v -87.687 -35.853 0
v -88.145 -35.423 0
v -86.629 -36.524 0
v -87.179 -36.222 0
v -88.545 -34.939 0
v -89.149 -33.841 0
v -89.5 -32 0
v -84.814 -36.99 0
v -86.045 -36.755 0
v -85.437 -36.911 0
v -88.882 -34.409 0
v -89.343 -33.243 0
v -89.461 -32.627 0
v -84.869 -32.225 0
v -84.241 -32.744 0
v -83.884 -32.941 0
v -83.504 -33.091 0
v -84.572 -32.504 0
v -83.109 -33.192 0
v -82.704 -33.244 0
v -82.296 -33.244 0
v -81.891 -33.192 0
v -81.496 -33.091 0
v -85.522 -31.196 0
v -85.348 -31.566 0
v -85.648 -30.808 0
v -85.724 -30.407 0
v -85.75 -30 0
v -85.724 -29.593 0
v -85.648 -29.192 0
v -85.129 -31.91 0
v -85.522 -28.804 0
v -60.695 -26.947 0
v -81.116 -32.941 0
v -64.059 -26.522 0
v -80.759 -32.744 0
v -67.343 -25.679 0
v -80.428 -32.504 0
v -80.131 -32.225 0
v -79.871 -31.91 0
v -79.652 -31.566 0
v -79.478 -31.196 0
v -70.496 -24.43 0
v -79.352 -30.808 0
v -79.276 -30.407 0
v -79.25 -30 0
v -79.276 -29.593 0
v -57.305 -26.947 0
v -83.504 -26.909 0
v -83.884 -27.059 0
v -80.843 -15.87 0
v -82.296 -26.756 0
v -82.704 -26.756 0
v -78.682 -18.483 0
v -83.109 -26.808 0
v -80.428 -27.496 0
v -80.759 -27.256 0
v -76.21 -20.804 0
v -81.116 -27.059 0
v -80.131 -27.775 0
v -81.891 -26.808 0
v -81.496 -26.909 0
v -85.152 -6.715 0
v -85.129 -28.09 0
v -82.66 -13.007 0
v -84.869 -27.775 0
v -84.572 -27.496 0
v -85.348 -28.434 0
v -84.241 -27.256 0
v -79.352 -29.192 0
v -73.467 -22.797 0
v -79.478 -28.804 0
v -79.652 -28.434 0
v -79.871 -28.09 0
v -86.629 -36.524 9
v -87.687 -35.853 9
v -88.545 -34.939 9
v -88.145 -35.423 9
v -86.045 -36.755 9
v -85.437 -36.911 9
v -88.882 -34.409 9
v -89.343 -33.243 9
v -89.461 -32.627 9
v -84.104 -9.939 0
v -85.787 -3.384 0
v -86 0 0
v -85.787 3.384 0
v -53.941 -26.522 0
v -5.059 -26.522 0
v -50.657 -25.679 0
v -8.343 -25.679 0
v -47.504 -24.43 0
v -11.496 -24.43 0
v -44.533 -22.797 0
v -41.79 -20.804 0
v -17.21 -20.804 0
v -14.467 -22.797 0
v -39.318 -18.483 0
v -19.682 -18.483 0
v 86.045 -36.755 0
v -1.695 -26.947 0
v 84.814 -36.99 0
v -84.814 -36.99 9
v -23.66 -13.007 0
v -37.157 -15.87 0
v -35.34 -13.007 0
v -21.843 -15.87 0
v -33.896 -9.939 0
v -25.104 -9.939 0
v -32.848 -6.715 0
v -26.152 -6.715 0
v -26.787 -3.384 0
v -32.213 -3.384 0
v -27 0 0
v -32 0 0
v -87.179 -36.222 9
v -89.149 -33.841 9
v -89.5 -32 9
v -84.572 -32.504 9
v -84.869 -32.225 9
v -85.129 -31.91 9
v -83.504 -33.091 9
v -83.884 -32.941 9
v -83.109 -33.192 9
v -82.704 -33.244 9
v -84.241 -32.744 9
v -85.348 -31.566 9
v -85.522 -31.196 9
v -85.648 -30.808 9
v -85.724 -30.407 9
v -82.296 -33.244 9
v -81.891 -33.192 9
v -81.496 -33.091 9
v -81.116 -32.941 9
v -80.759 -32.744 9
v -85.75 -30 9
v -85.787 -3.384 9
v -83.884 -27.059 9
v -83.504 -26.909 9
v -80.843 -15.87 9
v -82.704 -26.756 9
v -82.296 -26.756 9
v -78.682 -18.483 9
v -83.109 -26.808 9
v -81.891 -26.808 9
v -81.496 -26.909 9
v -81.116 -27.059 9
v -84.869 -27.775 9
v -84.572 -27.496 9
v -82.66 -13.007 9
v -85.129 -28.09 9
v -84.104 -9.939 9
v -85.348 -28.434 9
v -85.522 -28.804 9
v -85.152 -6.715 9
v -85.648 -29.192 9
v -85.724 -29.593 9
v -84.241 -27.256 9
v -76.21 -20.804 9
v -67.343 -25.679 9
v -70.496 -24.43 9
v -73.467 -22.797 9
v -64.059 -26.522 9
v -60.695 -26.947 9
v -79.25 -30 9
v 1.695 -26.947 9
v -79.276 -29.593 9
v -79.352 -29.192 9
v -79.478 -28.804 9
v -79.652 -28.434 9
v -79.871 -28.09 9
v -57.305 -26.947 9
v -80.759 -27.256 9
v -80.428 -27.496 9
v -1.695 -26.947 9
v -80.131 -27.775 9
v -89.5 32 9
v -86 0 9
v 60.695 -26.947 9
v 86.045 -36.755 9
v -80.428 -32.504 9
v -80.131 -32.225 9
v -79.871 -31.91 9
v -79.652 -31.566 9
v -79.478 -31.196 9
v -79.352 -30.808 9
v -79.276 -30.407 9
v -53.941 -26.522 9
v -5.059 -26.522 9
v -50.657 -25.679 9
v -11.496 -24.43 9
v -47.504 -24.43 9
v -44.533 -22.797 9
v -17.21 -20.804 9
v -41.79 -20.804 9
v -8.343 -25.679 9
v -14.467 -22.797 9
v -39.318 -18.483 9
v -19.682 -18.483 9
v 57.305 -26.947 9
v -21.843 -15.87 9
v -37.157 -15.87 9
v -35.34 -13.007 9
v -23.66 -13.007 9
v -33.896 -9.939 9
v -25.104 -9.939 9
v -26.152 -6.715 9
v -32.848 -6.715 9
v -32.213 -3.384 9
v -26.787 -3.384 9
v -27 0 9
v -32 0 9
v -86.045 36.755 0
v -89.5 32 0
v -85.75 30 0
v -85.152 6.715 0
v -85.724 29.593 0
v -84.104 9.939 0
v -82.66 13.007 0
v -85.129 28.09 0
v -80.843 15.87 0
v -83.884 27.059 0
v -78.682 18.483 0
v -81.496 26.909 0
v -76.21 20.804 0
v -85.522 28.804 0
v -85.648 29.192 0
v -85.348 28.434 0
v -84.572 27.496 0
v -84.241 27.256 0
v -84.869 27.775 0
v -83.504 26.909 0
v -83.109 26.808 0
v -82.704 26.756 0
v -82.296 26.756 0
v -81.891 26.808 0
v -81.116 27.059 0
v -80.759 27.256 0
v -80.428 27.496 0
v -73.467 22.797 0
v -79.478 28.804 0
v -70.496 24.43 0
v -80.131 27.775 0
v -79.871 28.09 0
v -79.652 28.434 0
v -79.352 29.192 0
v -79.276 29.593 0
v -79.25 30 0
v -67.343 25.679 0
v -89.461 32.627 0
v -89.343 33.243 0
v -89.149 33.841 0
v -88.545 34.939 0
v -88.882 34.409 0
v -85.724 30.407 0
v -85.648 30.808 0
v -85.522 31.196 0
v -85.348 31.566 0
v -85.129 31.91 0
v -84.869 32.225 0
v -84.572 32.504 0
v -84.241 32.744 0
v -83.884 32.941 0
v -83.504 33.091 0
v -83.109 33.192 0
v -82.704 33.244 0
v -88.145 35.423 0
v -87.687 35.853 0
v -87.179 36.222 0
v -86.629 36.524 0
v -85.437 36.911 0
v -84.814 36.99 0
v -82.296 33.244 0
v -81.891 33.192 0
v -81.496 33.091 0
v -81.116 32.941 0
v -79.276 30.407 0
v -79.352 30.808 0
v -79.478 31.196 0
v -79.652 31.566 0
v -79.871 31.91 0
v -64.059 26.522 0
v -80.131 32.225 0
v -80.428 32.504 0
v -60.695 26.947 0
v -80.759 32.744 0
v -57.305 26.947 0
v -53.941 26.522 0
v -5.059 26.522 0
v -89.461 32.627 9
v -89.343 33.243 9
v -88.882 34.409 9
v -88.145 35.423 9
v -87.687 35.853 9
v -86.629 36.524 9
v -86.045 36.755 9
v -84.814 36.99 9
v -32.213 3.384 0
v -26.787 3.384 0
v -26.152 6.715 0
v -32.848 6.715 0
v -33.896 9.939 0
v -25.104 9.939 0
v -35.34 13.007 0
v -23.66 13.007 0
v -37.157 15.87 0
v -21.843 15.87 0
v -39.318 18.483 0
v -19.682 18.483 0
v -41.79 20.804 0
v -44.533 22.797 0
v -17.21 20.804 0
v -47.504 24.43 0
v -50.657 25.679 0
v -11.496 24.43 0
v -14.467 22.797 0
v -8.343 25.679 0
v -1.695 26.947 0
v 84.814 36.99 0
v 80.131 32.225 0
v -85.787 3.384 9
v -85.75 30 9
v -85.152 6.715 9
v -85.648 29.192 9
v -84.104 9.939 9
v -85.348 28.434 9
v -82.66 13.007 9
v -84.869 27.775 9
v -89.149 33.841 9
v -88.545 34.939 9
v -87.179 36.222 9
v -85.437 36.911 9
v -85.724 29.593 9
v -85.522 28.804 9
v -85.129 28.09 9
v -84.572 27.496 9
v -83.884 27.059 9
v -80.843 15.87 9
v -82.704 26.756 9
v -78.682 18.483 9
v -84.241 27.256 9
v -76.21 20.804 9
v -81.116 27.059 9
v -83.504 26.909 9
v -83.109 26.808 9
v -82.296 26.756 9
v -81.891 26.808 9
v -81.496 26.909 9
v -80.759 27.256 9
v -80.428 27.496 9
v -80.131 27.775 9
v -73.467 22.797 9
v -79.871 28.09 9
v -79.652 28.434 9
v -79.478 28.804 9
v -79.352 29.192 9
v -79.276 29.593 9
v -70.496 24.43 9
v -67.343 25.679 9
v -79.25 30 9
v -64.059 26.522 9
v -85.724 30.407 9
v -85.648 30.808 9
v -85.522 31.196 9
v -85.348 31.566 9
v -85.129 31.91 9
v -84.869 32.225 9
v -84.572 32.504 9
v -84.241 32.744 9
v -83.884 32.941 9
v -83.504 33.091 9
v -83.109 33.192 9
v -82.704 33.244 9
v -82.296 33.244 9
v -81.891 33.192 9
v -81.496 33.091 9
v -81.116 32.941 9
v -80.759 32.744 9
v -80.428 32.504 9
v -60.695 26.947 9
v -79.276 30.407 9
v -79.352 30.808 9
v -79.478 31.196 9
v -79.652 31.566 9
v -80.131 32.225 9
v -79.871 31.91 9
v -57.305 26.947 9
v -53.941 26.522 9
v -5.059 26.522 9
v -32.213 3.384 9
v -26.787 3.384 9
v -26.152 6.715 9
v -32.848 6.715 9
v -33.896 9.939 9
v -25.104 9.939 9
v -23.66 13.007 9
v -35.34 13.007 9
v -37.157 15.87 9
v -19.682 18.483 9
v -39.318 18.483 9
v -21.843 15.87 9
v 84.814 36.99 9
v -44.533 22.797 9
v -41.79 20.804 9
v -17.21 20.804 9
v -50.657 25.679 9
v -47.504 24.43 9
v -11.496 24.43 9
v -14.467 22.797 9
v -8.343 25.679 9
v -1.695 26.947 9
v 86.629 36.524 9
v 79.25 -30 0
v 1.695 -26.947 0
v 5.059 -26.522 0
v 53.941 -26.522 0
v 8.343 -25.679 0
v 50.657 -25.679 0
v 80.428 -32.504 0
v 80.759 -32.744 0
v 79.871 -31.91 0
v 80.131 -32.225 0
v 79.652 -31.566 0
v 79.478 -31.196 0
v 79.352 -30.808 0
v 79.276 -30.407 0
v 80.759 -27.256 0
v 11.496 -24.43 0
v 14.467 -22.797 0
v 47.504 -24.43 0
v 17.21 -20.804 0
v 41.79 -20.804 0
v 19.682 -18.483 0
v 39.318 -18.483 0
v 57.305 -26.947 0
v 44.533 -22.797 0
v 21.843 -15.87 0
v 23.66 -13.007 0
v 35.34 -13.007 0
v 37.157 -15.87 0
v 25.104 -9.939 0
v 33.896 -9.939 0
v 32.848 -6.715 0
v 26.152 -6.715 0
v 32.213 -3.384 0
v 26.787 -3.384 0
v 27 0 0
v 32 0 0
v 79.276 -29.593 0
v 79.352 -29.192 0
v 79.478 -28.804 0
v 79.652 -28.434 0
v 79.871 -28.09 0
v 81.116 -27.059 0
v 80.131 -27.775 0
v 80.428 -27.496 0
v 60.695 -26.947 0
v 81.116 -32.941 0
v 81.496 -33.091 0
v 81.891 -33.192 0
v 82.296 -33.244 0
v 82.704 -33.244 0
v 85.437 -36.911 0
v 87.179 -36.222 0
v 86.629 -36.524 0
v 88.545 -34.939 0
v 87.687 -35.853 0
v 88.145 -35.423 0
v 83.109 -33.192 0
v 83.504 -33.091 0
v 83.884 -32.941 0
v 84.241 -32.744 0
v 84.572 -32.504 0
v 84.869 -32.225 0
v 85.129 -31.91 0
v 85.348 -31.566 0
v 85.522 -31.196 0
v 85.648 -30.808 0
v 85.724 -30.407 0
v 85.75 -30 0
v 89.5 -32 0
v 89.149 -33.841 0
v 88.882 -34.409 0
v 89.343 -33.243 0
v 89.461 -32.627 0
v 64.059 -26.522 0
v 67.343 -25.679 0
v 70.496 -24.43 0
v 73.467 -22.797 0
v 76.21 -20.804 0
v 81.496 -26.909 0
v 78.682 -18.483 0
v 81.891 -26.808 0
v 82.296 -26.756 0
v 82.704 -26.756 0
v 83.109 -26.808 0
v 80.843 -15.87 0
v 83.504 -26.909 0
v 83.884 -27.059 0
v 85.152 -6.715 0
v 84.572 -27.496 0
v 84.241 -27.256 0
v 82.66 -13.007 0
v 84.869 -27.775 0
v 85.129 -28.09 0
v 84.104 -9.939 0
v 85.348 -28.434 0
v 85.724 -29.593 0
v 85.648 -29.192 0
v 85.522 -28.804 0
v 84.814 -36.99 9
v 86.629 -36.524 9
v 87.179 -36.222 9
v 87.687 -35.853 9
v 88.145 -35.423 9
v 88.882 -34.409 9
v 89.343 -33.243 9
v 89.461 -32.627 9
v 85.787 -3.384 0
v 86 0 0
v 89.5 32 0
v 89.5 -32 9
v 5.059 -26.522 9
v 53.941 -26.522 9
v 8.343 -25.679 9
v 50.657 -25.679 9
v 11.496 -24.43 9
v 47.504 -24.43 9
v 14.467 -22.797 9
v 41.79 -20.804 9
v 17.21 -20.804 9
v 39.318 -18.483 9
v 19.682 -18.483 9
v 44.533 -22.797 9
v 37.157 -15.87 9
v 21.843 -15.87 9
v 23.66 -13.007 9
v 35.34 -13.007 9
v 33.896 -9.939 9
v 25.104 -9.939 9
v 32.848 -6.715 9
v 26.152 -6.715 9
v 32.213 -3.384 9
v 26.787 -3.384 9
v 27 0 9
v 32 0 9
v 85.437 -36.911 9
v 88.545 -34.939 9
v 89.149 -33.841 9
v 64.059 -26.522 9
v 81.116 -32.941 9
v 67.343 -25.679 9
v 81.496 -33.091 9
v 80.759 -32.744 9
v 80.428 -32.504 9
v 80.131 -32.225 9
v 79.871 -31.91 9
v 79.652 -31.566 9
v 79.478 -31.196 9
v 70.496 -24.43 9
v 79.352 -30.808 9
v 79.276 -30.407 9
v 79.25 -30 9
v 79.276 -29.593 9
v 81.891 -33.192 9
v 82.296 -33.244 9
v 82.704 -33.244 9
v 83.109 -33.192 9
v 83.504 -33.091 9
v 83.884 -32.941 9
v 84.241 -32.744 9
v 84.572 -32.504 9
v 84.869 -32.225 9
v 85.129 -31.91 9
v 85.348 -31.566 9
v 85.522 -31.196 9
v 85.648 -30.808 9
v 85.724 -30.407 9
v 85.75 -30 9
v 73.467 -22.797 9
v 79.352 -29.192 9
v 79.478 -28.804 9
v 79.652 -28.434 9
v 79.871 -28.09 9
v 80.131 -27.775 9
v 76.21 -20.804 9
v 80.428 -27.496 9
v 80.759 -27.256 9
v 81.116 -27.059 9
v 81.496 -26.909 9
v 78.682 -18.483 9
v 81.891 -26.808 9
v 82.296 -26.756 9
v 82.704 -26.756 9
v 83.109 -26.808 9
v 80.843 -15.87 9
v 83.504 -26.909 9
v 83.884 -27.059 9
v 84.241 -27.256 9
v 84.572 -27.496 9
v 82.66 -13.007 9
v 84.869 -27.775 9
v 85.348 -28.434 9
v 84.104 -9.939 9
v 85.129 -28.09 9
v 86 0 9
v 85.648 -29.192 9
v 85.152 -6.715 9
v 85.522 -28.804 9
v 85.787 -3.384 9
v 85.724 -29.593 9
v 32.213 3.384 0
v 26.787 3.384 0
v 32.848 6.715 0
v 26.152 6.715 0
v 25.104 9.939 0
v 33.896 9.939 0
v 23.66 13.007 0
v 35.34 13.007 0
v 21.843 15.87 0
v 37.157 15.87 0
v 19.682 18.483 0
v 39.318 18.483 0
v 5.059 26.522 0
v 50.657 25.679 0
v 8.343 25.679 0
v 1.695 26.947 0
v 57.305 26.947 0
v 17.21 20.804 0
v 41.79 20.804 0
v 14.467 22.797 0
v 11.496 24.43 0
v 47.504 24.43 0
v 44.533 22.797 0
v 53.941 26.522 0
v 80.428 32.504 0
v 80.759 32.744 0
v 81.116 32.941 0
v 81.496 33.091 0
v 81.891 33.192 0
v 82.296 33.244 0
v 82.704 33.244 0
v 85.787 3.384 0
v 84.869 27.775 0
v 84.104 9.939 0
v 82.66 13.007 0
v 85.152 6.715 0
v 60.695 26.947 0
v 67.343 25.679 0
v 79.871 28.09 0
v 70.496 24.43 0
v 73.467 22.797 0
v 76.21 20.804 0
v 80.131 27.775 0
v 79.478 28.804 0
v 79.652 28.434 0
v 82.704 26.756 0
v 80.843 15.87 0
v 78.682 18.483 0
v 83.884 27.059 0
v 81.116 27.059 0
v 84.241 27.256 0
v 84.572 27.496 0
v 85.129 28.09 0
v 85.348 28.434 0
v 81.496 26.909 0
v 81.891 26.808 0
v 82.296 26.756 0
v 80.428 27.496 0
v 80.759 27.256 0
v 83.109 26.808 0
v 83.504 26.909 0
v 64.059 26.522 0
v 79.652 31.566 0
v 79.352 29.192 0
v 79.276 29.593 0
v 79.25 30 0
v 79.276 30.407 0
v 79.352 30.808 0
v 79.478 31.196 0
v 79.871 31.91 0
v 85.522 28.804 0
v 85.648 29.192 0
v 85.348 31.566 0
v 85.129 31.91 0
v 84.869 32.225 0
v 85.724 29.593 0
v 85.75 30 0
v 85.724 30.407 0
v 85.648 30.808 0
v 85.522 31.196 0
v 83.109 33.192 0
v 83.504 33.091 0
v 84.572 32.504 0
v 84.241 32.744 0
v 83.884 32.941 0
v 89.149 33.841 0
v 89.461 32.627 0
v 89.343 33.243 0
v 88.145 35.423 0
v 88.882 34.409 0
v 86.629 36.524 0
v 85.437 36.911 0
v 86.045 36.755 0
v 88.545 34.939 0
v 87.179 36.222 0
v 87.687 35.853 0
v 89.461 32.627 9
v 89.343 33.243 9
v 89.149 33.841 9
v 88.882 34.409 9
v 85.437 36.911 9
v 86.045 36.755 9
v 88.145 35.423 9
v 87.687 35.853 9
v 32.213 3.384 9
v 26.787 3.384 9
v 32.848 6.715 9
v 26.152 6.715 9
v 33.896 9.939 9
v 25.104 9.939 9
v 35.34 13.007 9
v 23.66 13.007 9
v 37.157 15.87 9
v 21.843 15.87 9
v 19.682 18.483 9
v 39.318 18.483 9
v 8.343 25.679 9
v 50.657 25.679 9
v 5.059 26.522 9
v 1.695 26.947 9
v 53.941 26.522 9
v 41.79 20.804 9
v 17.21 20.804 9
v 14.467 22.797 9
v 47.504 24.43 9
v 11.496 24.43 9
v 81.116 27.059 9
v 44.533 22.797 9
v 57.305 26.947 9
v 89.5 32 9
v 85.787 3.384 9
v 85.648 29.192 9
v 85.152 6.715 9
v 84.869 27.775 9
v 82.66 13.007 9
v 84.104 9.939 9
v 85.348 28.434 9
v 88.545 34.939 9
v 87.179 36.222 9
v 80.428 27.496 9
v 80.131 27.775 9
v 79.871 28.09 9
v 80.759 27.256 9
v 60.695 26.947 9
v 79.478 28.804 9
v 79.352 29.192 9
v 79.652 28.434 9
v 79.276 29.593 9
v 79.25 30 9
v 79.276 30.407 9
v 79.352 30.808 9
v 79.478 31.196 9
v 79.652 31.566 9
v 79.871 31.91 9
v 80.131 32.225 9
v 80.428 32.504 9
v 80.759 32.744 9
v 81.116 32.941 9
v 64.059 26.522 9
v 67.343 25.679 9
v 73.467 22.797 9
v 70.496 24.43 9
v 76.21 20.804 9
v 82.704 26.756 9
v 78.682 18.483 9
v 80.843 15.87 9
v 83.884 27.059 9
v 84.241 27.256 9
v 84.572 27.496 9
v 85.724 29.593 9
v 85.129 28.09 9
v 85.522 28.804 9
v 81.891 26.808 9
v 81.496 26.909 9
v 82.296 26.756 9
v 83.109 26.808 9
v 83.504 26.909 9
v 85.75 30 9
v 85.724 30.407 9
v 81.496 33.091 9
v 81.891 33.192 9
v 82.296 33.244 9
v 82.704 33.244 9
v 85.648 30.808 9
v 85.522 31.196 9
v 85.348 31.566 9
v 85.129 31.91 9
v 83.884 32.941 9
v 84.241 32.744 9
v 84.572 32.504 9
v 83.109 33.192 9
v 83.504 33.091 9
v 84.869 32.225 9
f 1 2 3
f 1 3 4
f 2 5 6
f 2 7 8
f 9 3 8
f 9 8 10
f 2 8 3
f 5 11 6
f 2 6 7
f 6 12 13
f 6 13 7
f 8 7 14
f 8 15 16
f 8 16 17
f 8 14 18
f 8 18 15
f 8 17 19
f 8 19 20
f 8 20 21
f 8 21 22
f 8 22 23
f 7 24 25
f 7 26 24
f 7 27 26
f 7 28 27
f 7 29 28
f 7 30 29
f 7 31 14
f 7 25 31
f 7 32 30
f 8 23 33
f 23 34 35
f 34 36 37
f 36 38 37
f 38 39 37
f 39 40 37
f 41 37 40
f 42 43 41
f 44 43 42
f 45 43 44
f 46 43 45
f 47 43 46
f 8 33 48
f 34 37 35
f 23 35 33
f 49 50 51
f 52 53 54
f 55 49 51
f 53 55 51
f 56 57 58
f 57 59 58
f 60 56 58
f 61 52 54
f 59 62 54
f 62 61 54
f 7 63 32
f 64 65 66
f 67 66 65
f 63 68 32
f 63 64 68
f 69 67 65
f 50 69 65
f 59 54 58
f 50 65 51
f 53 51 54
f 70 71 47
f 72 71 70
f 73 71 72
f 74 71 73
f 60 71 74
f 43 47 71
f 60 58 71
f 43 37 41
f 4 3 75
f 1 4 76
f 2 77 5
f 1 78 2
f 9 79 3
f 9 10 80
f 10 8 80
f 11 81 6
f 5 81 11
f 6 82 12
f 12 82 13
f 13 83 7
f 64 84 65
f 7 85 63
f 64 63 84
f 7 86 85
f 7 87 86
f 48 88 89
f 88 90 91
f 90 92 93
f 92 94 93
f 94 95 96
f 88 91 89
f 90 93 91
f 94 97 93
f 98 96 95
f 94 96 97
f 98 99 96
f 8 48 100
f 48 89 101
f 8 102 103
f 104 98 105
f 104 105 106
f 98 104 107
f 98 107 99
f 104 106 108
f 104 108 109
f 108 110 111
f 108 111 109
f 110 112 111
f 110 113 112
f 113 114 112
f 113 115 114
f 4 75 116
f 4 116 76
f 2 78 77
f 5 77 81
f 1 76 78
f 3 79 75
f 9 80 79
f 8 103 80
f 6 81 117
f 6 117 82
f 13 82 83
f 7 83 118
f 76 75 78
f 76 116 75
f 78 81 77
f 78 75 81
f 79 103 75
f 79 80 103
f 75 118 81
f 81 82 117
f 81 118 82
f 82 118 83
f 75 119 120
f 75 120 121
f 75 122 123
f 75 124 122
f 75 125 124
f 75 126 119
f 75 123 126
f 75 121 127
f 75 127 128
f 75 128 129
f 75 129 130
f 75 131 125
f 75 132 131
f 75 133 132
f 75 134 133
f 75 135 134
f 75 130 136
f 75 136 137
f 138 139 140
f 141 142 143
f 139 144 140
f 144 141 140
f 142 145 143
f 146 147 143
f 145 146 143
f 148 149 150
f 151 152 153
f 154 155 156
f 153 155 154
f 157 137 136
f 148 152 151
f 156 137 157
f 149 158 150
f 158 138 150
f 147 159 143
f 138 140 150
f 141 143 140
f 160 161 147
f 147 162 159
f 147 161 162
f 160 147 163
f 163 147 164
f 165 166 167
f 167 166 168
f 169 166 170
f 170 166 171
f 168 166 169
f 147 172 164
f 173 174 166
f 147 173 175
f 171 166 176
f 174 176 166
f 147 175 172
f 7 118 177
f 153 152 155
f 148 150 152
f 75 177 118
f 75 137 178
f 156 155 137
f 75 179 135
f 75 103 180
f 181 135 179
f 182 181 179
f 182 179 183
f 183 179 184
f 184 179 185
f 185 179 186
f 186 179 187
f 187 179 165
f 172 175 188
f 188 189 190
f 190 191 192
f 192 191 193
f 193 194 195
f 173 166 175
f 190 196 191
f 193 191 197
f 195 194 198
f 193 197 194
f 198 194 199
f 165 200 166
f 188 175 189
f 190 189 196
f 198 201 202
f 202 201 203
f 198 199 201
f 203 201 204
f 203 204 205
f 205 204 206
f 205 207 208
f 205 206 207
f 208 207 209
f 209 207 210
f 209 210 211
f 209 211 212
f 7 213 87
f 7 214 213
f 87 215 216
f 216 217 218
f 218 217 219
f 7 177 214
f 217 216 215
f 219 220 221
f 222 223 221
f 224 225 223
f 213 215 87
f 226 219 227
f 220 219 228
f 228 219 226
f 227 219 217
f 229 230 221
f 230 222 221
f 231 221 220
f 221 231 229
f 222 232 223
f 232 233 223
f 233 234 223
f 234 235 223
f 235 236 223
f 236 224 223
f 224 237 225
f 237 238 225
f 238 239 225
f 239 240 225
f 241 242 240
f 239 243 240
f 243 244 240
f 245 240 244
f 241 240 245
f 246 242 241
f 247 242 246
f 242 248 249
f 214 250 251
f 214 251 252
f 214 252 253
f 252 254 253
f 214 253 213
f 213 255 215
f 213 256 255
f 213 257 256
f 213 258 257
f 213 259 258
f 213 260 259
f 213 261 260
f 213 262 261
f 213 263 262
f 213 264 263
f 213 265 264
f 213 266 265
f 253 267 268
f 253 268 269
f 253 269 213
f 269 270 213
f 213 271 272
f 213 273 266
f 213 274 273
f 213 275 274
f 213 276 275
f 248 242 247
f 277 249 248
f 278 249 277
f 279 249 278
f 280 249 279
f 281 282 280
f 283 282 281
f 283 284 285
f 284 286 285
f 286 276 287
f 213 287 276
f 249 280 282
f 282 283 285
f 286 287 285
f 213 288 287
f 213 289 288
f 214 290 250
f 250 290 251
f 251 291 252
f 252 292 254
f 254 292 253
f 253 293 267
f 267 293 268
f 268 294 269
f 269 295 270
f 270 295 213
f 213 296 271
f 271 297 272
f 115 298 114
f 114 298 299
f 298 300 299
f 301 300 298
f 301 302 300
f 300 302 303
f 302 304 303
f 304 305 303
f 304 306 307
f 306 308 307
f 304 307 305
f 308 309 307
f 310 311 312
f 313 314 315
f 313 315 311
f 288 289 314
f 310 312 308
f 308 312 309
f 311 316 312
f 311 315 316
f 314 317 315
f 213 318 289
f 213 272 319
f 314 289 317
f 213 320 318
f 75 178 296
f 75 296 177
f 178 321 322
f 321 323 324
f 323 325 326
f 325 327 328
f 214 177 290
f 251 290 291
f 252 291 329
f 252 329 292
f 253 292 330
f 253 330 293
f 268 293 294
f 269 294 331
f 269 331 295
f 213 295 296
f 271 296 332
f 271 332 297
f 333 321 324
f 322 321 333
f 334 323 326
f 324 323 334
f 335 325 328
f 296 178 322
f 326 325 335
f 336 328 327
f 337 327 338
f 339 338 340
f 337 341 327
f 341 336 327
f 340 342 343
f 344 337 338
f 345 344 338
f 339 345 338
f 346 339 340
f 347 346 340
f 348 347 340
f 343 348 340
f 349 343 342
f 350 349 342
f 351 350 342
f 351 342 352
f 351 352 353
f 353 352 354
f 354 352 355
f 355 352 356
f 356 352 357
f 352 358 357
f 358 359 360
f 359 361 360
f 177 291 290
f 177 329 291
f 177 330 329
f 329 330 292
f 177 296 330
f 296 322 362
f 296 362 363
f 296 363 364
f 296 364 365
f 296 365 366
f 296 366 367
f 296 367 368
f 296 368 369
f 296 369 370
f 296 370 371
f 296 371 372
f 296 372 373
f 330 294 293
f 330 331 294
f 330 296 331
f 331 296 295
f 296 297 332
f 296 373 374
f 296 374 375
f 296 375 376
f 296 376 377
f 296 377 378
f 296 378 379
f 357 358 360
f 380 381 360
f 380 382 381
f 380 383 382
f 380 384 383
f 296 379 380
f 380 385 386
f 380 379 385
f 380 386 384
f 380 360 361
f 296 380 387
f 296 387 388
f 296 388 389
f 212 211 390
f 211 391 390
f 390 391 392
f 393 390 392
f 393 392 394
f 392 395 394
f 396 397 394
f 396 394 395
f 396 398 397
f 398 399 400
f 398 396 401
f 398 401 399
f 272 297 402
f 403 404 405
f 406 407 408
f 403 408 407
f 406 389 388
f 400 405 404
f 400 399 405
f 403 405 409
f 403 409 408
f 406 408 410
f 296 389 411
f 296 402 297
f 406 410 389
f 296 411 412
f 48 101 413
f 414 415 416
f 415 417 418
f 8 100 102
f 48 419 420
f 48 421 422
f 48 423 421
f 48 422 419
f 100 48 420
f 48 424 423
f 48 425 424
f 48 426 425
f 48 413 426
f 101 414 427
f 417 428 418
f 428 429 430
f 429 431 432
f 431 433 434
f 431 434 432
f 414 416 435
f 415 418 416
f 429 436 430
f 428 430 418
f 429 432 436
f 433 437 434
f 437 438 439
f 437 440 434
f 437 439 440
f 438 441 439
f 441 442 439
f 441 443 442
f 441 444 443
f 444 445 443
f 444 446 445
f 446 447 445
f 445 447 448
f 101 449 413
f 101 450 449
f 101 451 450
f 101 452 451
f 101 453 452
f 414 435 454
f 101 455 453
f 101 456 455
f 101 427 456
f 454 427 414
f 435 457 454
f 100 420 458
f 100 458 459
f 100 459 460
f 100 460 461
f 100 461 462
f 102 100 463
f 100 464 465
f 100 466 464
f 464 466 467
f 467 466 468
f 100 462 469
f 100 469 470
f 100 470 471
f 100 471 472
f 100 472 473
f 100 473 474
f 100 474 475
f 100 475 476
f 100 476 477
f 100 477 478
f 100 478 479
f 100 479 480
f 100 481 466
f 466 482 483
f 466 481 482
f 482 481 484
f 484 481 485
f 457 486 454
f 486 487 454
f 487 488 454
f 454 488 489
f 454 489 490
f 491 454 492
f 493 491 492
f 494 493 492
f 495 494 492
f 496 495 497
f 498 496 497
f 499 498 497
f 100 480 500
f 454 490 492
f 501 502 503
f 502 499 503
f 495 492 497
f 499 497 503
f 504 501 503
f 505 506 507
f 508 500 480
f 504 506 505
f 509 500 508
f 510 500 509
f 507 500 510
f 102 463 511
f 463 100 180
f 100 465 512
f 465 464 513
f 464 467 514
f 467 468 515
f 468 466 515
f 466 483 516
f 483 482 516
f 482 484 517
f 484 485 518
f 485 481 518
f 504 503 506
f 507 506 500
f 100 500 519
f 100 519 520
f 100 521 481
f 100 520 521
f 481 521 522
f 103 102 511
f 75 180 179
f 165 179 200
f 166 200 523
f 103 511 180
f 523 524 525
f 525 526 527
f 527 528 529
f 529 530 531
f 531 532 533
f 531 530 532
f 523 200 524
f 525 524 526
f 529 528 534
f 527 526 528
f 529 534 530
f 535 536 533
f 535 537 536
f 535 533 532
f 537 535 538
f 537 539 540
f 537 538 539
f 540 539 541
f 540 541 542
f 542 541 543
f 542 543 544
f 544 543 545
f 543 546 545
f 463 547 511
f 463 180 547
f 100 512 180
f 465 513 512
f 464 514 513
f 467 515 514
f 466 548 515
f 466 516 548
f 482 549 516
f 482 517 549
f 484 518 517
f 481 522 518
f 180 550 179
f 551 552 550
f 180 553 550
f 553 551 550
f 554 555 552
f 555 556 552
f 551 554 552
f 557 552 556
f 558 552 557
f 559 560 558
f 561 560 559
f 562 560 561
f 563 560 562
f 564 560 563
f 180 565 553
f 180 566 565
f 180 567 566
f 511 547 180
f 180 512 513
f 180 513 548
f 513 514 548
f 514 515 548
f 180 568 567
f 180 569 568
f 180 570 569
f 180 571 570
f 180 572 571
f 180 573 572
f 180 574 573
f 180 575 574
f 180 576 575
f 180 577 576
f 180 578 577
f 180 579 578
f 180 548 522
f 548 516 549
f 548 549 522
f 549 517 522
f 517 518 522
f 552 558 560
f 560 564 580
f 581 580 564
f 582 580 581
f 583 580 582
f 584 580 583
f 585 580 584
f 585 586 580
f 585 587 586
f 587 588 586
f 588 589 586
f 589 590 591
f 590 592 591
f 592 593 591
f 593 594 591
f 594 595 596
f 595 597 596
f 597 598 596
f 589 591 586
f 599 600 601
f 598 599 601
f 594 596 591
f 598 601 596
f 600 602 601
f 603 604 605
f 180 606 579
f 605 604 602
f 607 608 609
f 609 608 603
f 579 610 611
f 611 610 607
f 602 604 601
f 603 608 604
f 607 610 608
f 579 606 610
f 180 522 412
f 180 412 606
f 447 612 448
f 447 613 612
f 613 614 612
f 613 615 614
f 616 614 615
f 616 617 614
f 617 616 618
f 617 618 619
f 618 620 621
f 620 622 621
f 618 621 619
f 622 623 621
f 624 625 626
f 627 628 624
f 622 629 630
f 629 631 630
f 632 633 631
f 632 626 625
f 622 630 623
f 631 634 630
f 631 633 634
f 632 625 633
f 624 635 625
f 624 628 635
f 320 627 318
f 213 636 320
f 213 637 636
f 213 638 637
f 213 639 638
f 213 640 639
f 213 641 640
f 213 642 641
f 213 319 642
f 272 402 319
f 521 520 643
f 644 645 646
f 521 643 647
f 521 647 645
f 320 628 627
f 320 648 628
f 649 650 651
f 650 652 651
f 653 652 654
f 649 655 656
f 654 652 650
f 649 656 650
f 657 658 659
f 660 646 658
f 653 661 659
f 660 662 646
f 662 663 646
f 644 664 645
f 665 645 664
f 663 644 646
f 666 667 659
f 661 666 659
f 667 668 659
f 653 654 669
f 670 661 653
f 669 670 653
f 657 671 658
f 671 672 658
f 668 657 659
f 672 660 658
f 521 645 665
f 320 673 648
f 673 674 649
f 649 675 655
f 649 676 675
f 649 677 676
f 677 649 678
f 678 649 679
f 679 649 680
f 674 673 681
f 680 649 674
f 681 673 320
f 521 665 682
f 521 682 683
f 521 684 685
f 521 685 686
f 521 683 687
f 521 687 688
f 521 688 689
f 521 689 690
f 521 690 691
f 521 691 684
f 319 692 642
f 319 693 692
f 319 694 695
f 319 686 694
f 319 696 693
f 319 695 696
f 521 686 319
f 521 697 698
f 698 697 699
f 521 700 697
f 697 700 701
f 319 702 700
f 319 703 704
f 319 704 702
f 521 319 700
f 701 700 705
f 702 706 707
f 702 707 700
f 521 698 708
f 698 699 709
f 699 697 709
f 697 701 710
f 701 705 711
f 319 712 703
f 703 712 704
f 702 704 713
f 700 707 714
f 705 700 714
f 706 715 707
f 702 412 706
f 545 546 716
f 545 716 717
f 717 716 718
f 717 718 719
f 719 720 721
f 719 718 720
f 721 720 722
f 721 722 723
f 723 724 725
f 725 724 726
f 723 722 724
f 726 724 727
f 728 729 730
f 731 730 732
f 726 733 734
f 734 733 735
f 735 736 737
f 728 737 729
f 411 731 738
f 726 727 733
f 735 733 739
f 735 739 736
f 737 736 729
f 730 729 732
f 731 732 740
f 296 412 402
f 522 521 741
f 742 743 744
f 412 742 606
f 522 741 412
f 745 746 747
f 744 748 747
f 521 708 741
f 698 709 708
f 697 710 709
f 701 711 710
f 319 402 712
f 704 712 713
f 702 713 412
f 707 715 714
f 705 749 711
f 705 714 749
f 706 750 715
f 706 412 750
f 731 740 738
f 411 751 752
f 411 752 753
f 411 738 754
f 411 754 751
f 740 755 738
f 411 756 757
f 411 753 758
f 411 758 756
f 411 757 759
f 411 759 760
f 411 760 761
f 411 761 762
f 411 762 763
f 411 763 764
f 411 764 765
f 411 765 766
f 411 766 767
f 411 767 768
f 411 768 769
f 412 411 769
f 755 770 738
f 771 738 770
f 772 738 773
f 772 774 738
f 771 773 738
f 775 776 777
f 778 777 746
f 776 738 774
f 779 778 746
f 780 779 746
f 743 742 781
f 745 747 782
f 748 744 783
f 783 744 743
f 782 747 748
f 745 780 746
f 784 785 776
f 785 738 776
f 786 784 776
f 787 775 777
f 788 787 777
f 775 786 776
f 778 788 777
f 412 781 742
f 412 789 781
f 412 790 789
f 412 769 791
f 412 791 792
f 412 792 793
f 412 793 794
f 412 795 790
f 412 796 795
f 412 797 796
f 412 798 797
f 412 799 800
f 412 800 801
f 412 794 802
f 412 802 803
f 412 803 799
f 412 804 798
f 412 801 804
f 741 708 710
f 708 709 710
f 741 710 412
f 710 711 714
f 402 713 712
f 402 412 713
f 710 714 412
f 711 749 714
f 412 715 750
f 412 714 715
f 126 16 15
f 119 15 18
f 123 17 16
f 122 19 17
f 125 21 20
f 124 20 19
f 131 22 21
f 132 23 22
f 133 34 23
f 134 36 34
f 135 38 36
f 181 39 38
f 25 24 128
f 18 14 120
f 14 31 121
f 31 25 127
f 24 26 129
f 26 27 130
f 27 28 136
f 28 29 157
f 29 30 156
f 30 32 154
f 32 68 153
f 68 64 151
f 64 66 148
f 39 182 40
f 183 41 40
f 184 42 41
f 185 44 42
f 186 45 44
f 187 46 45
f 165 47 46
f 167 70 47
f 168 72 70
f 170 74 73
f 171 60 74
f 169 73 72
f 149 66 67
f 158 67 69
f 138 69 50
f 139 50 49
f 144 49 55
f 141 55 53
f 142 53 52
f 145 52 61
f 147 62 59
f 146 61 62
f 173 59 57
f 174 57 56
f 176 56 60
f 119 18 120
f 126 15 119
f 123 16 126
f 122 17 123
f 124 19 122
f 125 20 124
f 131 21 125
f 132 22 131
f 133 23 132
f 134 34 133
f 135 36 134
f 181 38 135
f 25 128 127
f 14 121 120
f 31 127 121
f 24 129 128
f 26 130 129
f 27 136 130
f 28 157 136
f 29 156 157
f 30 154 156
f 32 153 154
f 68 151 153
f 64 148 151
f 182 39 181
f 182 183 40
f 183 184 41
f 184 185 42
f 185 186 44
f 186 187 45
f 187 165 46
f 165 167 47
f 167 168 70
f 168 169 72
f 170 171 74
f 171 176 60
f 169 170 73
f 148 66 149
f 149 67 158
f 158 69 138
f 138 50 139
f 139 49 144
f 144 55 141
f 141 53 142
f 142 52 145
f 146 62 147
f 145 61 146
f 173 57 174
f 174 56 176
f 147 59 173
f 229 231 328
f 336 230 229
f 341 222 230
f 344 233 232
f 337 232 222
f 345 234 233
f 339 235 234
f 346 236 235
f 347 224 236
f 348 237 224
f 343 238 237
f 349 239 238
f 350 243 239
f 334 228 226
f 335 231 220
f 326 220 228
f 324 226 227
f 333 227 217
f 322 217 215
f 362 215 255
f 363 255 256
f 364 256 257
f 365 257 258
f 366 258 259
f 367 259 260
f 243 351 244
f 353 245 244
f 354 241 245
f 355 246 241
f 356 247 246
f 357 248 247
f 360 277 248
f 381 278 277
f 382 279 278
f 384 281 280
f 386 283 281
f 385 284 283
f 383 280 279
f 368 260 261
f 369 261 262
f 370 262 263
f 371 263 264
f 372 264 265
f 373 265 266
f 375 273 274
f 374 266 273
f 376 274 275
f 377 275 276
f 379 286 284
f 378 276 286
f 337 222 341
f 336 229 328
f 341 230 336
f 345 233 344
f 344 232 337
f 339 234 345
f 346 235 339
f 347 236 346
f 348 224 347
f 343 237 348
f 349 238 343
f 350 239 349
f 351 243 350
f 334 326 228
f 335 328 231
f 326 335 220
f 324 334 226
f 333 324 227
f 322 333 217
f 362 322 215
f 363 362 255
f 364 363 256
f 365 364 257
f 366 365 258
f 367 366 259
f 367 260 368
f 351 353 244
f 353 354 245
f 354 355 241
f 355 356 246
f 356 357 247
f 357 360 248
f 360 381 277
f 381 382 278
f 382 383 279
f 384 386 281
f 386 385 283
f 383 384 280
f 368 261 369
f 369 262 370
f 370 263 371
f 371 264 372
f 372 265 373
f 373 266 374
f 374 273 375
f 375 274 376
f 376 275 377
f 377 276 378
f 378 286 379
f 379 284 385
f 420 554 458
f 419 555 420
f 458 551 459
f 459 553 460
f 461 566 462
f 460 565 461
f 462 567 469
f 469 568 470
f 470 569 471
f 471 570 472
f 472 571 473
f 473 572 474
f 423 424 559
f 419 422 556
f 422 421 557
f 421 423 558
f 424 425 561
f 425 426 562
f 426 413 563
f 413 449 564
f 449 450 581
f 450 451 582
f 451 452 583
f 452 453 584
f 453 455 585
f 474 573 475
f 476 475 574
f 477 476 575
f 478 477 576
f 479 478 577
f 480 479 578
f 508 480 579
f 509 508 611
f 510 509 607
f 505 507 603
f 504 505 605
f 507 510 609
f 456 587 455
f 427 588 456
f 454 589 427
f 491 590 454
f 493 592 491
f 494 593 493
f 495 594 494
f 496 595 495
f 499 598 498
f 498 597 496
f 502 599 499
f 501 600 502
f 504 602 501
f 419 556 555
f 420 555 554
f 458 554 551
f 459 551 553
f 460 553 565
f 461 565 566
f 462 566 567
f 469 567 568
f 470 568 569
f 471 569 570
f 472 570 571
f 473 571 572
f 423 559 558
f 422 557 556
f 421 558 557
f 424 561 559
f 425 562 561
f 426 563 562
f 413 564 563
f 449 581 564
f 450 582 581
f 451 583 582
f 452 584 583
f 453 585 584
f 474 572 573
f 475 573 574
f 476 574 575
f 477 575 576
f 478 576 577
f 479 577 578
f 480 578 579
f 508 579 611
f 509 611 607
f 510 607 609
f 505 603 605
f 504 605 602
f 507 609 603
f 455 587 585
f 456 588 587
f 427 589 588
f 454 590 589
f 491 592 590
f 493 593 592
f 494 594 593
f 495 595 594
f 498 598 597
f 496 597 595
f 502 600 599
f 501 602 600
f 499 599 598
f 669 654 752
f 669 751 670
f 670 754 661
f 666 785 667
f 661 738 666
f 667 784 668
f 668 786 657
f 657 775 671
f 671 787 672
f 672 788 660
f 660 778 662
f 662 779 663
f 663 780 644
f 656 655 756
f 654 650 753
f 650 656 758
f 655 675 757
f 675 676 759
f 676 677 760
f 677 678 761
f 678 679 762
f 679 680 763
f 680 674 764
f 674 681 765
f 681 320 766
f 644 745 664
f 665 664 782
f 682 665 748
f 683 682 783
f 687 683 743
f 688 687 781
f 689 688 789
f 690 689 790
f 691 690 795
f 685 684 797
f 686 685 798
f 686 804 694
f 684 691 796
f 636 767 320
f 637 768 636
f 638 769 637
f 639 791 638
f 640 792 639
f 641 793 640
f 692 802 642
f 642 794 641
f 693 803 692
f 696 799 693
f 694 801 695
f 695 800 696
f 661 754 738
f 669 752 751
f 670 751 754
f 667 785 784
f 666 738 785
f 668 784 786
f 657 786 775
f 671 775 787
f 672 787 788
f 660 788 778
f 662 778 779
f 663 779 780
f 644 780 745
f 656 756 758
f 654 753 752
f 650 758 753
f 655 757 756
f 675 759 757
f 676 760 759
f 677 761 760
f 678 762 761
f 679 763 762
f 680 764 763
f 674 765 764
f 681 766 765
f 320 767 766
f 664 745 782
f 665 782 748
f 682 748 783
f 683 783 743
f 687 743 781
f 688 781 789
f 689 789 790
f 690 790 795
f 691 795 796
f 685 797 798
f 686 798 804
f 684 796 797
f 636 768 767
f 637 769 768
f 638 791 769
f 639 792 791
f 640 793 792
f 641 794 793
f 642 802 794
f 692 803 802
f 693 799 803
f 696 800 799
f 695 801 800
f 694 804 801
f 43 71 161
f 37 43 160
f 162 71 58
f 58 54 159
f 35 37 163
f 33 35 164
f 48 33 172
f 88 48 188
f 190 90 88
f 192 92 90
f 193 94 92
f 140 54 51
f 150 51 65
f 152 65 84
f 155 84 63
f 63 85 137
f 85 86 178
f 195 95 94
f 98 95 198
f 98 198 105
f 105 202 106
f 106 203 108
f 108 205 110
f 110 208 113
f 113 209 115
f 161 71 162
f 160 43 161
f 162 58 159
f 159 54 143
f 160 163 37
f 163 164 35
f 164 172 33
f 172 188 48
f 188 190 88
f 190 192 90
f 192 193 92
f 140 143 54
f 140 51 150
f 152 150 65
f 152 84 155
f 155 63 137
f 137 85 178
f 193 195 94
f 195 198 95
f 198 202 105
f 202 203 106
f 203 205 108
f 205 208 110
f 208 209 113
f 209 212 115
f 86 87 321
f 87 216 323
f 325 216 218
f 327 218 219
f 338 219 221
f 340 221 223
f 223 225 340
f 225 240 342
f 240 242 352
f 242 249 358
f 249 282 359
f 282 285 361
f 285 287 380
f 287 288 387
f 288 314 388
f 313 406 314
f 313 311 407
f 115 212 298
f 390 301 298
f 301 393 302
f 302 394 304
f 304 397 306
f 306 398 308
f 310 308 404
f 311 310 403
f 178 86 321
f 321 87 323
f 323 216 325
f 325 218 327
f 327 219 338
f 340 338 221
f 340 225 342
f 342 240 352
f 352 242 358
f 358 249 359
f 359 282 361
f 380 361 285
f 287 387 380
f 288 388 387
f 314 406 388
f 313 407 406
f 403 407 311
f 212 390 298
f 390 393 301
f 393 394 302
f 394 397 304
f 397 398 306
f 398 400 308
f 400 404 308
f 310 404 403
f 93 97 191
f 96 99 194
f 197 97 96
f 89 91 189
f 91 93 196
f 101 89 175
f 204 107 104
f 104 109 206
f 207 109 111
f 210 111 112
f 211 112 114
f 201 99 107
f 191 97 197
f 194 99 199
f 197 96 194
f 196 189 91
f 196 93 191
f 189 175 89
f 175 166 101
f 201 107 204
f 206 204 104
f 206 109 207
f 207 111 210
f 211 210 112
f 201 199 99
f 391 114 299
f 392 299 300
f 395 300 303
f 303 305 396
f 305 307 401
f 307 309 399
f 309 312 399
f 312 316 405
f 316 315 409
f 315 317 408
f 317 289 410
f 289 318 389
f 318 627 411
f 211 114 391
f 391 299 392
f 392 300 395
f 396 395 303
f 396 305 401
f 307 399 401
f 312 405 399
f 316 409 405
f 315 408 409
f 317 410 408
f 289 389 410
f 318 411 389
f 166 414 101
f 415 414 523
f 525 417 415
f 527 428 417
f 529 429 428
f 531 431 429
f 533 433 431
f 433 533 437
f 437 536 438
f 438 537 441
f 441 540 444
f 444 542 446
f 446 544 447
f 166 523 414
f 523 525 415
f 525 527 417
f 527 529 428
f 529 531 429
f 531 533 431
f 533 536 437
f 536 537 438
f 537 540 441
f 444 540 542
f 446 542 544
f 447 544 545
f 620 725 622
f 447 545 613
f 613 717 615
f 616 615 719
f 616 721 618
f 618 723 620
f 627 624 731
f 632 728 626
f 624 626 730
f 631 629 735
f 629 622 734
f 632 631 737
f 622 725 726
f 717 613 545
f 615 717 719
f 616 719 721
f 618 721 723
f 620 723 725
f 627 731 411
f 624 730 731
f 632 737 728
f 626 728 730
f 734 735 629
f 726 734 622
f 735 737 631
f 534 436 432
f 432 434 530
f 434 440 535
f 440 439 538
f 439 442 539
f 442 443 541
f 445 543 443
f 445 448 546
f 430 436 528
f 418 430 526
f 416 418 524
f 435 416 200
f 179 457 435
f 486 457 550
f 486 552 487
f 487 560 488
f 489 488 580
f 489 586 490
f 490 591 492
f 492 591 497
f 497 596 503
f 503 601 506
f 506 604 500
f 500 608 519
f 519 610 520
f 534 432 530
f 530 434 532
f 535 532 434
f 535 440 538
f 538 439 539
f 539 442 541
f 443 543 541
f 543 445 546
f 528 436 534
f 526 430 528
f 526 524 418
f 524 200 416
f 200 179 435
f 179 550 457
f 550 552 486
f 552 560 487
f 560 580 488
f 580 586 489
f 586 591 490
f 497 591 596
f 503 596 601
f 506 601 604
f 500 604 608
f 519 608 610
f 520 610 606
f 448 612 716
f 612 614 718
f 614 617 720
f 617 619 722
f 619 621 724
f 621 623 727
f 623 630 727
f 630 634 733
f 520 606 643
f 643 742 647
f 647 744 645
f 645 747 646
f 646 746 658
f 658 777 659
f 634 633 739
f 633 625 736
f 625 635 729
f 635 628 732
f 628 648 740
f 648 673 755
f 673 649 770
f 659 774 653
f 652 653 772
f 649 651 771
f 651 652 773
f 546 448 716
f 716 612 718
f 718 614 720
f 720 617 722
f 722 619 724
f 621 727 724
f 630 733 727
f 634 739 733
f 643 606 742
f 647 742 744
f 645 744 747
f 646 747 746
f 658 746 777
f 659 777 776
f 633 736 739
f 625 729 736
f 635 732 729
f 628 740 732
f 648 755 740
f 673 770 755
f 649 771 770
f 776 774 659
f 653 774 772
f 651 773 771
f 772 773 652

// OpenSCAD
$fn = 50;

difference() {
	union() {
		hull() {
			translate(v = [-84.5, 32.0, 0]) {
				cylinder(h = 9, r = 5);
			}
			translate(v = [84.5, 32.0, 0]) {
				cylinder(h = 9, r = 5);
			}
			translate(v = [-84.5, -32.0, 0]) {
				cylinder(h = 9, r = 5);
			}
			translate(v = [84.5, -32.0, 0]) {
				cylinder(h = 9, r = 5);
			}
		}
	}
	union() {
		translate(v = [-82.5, -30.0, -100.0]) {
			cylinder(h = 200, r = 3.25);
		}
		translate(v = [-82.5, 30.0, -100.0]) {
			cylinder(h = 200, r = 3.25);
		}
		translate(v = [82.5, -30.0, -100.0]) {
			cylinder(h = 200, r = 3.25);
		}
		translate(v = [82.5, 30.0, -100.0]) {
			cylinder(h = 200, r = 3.25);
		}
		translate(v = [-82.5, -30.0, -100.0]) {
			cylinder(h = 200, r = 1.8);
		}
		translate(v = [-82.5, 30.0, -100.0]) {
			cylinder(h = 200, r = 1.8);
		}
		translate(v = [82.5, -30.0, -100.0]) {
			cylinder(h = 200, r = 1.8);
		}
		translate(v = [82.5, 30.0, -100.0]) {
			cylinder(h = 200, r = 1.8);
		}
		translate(v = [-59.0, 0, 0.0]) {
			cylinder(h = 9, r = 27.0);
		}
		cylinder(h = 9, r = 27.0);
		translate(v = [59.0, 0, 0.0]) {
			cylinder(h = 9, r = 27.0);
		}
	}
}
